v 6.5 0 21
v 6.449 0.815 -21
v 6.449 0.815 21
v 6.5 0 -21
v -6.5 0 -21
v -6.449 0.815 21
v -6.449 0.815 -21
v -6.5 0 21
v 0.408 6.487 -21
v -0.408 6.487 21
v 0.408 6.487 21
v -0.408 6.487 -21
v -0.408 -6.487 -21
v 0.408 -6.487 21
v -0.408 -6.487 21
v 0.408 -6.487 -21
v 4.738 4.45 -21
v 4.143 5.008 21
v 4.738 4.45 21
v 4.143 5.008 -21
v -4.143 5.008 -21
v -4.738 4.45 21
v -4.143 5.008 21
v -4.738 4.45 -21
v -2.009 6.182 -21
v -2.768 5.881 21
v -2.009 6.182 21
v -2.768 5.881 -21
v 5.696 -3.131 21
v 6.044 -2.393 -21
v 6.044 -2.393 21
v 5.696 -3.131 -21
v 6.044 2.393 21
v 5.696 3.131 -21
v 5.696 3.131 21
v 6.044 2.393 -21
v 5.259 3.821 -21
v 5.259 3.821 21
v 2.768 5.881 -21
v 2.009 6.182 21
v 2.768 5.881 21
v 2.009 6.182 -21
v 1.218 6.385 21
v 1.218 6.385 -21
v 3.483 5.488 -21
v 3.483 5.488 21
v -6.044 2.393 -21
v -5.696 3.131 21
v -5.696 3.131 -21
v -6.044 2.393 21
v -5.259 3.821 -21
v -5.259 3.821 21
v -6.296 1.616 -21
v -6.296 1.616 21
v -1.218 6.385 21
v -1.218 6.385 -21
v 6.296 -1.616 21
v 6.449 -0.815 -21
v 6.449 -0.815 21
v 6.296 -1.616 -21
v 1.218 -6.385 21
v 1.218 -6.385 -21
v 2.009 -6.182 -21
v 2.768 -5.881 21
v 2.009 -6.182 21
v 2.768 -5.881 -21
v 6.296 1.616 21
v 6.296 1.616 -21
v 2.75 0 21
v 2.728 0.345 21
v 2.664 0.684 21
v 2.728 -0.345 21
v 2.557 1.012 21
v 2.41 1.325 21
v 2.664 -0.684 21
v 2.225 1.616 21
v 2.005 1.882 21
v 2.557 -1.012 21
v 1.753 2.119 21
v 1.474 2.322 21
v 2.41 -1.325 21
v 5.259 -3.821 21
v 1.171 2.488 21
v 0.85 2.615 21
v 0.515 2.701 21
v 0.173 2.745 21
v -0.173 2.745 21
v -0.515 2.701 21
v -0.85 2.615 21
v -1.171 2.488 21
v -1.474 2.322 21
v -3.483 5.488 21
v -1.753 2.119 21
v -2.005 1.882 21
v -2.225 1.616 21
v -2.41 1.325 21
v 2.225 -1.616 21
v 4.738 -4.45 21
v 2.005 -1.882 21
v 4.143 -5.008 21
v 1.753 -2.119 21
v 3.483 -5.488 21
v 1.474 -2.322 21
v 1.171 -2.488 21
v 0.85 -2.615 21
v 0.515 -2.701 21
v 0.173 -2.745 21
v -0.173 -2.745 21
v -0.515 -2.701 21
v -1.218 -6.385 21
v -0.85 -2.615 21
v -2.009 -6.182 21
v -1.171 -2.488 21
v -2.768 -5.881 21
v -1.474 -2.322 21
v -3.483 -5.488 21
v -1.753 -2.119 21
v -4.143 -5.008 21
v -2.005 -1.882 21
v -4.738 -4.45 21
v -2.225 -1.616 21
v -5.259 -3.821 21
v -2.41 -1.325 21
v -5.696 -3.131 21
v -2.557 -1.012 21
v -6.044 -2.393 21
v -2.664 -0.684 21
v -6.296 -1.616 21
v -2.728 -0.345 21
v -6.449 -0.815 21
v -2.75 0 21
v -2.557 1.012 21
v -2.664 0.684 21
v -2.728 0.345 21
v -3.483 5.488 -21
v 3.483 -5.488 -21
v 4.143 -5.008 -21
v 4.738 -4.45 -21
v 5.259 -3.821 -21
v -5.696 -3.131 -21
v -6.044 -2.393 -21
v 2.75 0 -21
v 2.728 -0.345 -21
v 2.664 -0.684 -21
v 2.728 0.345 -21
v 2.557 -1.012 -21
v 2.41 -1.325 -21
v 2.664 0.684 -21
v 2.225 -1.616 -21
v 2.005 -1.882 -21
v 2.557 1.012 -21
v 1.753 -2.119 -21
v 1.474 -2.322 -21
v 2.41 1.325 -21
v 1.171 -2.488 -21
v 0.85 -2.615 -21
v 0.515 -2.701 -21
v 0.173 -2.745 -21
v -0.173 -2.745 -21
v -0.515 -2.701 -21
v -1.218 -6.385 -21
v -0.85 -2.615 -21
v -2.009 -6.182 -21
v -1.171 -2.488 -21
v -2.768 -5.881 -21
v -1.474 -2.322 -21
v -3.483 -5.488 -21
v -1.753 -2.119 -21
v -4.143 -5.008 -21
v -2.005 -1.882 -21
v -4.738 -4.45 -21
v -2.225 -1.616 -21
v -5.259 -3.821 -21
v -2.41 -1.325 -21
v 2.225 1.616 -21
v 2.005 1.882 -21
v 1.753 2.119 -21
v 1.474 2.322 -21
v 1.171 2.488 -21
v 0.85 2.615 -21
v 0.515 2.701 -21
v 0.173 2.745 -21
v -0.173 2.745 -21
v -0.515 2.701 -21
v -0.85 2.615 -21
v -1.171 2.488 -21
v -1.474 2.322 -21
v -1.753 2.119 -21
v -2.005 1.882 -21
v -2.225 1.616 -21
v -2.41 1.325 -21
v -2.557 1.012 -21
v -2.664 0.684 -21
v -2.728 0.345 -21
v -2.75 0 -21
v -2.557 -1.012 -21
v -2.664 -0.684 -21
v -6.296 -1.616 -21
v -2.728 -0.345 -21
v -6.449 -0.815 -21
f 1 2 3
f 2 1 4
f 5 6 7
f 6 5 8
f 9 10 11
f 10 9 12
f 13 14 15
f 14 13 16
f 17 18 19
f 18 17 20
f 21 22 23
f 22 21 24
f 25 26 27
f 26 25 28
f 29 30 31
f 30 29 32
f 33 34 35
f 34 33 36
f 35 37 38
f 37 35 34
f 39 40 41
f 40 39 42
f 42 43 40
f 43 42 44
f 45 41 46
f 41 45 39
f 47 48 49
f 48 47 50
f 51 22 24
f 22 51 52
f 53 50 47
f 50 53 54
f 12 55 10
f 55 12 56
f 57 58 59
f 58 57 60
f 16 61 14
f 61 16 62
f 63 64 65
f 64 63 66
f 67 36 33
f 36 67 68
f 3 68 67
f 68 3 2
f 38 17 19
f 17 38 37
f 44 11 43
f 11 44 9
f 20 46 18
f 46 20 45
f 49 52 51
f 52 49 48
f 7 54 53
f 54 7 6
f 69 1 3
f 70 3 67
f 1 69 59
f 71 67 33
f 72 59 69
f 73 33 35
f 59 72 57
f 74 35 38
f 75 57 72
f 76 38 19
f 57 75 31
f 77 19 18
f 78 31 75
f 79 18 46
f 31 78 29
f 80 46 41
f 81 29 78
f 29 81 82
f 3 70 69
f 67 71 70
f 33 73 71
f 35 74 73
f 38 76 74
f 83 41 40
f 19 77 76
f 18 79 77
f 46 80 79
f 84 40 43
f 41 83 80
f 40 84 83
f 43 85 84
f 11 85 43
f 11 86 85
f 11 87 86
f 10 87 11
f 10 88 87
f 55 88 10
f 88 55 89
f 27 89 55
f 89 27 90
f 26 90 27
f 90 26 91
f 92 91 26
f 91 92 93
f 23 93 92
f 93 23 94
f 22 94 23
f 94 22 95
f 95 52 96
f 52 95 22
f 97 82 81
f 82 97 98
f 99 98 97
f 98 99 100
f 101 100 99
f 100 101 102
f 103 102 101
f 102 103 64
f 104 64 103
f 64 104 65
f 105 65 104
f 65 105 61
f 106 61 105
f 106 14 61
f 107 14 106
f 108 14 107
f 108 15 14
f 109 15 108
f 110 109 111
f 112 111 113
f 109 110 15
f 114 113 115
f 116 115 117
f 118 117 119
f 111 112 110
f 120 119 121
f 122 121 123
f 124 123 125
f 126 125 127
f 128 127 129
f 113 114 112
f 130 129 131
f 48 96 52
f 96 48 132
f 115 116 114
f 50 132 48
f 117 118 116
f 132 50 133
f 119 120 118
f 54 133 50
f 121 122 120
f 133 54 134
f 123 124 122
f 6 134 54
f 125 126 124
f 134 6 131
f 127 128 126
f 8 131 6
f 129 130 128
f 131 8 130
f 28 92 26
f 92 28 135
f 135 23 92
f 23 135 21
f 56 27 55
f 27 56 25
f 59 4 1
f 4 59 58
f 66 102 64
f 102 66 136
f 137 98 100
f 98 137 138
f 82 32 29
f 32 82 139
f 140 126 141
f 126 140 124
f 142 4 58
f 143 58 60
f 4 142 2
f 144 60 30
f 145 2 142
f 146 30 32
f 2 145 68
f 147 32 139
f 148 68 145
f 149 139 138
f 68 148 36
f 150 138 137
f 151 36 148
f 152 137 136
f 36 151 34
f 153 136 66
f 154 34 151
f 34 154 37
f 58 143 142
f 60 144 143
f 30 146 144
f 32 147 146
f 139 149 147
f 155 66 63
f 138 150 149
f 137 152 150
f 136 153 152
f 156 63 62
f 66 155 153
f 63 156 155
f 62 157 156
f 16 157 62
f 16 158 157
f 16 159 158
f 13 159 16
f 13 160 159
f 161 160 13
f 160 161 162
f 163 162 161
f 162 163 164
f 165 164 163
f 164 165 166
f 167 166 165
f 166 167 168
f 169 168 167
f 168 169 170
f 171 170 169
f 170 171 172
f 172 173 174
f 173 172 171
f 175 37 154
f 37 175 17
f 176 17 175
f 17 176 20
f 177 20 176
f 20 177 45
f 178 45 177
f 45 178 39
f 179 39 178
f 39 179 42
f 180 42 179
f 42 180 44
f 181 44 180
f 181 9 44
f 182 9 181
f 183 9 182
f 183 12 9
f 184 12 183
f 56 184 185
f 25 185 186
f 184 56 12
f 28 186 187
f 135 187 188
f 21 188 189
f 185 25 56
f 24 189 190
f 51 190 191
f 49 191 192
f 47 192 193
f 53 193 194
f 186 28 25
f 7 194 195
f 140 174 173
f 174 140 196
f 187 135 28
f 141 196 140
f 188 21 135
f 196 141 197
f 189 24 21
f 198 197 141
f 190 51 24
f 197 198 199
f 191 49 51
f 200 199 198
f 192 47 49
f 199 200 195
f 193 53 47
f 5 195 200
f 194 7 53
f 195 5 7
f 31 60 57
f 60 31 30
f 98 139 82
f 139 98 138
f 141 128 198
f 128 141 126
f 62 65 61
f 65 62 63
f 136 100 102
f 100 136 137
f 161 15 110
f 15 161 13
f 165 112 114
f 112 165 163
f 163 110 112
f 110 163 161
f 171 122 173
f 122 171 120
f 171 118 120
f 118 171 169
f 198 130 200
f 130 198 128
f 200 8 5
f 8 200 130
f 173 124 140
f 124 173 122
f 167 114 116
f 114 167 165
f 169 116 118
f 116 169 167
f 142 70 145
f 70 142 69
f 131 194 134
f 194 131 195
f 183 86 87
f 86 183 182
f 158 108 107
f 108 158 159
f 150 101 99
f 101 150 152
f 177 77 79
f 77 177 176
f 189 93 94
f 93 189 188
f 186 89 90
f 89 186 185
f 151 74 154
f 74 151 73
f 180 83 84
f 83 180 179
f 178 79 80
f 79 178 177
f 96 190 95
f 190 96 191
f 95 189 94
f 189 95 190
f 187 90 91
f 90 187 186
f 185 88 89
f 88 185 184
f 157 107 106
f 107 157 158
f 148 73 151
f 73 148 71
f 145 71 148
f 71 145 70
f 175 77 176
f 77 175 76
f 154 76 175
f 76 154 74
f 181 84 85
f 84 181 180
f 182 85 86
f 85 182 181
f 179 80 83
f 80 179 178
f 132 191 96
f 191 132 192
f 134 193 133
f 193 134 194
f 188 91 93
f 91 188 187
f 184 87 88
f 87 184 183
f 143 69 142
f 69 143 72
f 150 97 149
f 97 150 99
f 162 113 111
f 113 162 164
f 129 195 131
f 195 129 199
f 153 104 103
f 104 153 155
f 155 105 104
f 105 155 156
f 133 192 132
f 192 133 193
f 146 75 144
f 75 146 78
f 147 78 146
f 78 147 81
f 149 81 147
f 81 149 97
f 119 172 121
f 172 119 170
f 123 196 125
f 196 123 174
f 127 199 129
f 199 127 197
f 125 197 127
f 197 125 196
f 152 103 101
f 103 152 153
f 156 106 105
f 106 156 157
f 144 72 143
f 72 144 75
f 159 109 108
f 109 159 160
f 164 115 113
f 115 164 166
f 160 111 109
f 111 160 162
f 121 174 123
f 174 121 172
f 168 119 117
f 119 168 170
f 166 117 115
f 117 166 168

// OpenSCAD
$fn = 50;


difference() {
	union() {
		translate(v = [0, 0, -21.0000000000]) {
			cylinder(h = 42, r = 6.5000000000);
		}
	}
	union() {
		translate(v = [0, 0, -100.0000000000]) {
			cylinder(h = 200, r = 2.7500000000);
		}
	}
}
